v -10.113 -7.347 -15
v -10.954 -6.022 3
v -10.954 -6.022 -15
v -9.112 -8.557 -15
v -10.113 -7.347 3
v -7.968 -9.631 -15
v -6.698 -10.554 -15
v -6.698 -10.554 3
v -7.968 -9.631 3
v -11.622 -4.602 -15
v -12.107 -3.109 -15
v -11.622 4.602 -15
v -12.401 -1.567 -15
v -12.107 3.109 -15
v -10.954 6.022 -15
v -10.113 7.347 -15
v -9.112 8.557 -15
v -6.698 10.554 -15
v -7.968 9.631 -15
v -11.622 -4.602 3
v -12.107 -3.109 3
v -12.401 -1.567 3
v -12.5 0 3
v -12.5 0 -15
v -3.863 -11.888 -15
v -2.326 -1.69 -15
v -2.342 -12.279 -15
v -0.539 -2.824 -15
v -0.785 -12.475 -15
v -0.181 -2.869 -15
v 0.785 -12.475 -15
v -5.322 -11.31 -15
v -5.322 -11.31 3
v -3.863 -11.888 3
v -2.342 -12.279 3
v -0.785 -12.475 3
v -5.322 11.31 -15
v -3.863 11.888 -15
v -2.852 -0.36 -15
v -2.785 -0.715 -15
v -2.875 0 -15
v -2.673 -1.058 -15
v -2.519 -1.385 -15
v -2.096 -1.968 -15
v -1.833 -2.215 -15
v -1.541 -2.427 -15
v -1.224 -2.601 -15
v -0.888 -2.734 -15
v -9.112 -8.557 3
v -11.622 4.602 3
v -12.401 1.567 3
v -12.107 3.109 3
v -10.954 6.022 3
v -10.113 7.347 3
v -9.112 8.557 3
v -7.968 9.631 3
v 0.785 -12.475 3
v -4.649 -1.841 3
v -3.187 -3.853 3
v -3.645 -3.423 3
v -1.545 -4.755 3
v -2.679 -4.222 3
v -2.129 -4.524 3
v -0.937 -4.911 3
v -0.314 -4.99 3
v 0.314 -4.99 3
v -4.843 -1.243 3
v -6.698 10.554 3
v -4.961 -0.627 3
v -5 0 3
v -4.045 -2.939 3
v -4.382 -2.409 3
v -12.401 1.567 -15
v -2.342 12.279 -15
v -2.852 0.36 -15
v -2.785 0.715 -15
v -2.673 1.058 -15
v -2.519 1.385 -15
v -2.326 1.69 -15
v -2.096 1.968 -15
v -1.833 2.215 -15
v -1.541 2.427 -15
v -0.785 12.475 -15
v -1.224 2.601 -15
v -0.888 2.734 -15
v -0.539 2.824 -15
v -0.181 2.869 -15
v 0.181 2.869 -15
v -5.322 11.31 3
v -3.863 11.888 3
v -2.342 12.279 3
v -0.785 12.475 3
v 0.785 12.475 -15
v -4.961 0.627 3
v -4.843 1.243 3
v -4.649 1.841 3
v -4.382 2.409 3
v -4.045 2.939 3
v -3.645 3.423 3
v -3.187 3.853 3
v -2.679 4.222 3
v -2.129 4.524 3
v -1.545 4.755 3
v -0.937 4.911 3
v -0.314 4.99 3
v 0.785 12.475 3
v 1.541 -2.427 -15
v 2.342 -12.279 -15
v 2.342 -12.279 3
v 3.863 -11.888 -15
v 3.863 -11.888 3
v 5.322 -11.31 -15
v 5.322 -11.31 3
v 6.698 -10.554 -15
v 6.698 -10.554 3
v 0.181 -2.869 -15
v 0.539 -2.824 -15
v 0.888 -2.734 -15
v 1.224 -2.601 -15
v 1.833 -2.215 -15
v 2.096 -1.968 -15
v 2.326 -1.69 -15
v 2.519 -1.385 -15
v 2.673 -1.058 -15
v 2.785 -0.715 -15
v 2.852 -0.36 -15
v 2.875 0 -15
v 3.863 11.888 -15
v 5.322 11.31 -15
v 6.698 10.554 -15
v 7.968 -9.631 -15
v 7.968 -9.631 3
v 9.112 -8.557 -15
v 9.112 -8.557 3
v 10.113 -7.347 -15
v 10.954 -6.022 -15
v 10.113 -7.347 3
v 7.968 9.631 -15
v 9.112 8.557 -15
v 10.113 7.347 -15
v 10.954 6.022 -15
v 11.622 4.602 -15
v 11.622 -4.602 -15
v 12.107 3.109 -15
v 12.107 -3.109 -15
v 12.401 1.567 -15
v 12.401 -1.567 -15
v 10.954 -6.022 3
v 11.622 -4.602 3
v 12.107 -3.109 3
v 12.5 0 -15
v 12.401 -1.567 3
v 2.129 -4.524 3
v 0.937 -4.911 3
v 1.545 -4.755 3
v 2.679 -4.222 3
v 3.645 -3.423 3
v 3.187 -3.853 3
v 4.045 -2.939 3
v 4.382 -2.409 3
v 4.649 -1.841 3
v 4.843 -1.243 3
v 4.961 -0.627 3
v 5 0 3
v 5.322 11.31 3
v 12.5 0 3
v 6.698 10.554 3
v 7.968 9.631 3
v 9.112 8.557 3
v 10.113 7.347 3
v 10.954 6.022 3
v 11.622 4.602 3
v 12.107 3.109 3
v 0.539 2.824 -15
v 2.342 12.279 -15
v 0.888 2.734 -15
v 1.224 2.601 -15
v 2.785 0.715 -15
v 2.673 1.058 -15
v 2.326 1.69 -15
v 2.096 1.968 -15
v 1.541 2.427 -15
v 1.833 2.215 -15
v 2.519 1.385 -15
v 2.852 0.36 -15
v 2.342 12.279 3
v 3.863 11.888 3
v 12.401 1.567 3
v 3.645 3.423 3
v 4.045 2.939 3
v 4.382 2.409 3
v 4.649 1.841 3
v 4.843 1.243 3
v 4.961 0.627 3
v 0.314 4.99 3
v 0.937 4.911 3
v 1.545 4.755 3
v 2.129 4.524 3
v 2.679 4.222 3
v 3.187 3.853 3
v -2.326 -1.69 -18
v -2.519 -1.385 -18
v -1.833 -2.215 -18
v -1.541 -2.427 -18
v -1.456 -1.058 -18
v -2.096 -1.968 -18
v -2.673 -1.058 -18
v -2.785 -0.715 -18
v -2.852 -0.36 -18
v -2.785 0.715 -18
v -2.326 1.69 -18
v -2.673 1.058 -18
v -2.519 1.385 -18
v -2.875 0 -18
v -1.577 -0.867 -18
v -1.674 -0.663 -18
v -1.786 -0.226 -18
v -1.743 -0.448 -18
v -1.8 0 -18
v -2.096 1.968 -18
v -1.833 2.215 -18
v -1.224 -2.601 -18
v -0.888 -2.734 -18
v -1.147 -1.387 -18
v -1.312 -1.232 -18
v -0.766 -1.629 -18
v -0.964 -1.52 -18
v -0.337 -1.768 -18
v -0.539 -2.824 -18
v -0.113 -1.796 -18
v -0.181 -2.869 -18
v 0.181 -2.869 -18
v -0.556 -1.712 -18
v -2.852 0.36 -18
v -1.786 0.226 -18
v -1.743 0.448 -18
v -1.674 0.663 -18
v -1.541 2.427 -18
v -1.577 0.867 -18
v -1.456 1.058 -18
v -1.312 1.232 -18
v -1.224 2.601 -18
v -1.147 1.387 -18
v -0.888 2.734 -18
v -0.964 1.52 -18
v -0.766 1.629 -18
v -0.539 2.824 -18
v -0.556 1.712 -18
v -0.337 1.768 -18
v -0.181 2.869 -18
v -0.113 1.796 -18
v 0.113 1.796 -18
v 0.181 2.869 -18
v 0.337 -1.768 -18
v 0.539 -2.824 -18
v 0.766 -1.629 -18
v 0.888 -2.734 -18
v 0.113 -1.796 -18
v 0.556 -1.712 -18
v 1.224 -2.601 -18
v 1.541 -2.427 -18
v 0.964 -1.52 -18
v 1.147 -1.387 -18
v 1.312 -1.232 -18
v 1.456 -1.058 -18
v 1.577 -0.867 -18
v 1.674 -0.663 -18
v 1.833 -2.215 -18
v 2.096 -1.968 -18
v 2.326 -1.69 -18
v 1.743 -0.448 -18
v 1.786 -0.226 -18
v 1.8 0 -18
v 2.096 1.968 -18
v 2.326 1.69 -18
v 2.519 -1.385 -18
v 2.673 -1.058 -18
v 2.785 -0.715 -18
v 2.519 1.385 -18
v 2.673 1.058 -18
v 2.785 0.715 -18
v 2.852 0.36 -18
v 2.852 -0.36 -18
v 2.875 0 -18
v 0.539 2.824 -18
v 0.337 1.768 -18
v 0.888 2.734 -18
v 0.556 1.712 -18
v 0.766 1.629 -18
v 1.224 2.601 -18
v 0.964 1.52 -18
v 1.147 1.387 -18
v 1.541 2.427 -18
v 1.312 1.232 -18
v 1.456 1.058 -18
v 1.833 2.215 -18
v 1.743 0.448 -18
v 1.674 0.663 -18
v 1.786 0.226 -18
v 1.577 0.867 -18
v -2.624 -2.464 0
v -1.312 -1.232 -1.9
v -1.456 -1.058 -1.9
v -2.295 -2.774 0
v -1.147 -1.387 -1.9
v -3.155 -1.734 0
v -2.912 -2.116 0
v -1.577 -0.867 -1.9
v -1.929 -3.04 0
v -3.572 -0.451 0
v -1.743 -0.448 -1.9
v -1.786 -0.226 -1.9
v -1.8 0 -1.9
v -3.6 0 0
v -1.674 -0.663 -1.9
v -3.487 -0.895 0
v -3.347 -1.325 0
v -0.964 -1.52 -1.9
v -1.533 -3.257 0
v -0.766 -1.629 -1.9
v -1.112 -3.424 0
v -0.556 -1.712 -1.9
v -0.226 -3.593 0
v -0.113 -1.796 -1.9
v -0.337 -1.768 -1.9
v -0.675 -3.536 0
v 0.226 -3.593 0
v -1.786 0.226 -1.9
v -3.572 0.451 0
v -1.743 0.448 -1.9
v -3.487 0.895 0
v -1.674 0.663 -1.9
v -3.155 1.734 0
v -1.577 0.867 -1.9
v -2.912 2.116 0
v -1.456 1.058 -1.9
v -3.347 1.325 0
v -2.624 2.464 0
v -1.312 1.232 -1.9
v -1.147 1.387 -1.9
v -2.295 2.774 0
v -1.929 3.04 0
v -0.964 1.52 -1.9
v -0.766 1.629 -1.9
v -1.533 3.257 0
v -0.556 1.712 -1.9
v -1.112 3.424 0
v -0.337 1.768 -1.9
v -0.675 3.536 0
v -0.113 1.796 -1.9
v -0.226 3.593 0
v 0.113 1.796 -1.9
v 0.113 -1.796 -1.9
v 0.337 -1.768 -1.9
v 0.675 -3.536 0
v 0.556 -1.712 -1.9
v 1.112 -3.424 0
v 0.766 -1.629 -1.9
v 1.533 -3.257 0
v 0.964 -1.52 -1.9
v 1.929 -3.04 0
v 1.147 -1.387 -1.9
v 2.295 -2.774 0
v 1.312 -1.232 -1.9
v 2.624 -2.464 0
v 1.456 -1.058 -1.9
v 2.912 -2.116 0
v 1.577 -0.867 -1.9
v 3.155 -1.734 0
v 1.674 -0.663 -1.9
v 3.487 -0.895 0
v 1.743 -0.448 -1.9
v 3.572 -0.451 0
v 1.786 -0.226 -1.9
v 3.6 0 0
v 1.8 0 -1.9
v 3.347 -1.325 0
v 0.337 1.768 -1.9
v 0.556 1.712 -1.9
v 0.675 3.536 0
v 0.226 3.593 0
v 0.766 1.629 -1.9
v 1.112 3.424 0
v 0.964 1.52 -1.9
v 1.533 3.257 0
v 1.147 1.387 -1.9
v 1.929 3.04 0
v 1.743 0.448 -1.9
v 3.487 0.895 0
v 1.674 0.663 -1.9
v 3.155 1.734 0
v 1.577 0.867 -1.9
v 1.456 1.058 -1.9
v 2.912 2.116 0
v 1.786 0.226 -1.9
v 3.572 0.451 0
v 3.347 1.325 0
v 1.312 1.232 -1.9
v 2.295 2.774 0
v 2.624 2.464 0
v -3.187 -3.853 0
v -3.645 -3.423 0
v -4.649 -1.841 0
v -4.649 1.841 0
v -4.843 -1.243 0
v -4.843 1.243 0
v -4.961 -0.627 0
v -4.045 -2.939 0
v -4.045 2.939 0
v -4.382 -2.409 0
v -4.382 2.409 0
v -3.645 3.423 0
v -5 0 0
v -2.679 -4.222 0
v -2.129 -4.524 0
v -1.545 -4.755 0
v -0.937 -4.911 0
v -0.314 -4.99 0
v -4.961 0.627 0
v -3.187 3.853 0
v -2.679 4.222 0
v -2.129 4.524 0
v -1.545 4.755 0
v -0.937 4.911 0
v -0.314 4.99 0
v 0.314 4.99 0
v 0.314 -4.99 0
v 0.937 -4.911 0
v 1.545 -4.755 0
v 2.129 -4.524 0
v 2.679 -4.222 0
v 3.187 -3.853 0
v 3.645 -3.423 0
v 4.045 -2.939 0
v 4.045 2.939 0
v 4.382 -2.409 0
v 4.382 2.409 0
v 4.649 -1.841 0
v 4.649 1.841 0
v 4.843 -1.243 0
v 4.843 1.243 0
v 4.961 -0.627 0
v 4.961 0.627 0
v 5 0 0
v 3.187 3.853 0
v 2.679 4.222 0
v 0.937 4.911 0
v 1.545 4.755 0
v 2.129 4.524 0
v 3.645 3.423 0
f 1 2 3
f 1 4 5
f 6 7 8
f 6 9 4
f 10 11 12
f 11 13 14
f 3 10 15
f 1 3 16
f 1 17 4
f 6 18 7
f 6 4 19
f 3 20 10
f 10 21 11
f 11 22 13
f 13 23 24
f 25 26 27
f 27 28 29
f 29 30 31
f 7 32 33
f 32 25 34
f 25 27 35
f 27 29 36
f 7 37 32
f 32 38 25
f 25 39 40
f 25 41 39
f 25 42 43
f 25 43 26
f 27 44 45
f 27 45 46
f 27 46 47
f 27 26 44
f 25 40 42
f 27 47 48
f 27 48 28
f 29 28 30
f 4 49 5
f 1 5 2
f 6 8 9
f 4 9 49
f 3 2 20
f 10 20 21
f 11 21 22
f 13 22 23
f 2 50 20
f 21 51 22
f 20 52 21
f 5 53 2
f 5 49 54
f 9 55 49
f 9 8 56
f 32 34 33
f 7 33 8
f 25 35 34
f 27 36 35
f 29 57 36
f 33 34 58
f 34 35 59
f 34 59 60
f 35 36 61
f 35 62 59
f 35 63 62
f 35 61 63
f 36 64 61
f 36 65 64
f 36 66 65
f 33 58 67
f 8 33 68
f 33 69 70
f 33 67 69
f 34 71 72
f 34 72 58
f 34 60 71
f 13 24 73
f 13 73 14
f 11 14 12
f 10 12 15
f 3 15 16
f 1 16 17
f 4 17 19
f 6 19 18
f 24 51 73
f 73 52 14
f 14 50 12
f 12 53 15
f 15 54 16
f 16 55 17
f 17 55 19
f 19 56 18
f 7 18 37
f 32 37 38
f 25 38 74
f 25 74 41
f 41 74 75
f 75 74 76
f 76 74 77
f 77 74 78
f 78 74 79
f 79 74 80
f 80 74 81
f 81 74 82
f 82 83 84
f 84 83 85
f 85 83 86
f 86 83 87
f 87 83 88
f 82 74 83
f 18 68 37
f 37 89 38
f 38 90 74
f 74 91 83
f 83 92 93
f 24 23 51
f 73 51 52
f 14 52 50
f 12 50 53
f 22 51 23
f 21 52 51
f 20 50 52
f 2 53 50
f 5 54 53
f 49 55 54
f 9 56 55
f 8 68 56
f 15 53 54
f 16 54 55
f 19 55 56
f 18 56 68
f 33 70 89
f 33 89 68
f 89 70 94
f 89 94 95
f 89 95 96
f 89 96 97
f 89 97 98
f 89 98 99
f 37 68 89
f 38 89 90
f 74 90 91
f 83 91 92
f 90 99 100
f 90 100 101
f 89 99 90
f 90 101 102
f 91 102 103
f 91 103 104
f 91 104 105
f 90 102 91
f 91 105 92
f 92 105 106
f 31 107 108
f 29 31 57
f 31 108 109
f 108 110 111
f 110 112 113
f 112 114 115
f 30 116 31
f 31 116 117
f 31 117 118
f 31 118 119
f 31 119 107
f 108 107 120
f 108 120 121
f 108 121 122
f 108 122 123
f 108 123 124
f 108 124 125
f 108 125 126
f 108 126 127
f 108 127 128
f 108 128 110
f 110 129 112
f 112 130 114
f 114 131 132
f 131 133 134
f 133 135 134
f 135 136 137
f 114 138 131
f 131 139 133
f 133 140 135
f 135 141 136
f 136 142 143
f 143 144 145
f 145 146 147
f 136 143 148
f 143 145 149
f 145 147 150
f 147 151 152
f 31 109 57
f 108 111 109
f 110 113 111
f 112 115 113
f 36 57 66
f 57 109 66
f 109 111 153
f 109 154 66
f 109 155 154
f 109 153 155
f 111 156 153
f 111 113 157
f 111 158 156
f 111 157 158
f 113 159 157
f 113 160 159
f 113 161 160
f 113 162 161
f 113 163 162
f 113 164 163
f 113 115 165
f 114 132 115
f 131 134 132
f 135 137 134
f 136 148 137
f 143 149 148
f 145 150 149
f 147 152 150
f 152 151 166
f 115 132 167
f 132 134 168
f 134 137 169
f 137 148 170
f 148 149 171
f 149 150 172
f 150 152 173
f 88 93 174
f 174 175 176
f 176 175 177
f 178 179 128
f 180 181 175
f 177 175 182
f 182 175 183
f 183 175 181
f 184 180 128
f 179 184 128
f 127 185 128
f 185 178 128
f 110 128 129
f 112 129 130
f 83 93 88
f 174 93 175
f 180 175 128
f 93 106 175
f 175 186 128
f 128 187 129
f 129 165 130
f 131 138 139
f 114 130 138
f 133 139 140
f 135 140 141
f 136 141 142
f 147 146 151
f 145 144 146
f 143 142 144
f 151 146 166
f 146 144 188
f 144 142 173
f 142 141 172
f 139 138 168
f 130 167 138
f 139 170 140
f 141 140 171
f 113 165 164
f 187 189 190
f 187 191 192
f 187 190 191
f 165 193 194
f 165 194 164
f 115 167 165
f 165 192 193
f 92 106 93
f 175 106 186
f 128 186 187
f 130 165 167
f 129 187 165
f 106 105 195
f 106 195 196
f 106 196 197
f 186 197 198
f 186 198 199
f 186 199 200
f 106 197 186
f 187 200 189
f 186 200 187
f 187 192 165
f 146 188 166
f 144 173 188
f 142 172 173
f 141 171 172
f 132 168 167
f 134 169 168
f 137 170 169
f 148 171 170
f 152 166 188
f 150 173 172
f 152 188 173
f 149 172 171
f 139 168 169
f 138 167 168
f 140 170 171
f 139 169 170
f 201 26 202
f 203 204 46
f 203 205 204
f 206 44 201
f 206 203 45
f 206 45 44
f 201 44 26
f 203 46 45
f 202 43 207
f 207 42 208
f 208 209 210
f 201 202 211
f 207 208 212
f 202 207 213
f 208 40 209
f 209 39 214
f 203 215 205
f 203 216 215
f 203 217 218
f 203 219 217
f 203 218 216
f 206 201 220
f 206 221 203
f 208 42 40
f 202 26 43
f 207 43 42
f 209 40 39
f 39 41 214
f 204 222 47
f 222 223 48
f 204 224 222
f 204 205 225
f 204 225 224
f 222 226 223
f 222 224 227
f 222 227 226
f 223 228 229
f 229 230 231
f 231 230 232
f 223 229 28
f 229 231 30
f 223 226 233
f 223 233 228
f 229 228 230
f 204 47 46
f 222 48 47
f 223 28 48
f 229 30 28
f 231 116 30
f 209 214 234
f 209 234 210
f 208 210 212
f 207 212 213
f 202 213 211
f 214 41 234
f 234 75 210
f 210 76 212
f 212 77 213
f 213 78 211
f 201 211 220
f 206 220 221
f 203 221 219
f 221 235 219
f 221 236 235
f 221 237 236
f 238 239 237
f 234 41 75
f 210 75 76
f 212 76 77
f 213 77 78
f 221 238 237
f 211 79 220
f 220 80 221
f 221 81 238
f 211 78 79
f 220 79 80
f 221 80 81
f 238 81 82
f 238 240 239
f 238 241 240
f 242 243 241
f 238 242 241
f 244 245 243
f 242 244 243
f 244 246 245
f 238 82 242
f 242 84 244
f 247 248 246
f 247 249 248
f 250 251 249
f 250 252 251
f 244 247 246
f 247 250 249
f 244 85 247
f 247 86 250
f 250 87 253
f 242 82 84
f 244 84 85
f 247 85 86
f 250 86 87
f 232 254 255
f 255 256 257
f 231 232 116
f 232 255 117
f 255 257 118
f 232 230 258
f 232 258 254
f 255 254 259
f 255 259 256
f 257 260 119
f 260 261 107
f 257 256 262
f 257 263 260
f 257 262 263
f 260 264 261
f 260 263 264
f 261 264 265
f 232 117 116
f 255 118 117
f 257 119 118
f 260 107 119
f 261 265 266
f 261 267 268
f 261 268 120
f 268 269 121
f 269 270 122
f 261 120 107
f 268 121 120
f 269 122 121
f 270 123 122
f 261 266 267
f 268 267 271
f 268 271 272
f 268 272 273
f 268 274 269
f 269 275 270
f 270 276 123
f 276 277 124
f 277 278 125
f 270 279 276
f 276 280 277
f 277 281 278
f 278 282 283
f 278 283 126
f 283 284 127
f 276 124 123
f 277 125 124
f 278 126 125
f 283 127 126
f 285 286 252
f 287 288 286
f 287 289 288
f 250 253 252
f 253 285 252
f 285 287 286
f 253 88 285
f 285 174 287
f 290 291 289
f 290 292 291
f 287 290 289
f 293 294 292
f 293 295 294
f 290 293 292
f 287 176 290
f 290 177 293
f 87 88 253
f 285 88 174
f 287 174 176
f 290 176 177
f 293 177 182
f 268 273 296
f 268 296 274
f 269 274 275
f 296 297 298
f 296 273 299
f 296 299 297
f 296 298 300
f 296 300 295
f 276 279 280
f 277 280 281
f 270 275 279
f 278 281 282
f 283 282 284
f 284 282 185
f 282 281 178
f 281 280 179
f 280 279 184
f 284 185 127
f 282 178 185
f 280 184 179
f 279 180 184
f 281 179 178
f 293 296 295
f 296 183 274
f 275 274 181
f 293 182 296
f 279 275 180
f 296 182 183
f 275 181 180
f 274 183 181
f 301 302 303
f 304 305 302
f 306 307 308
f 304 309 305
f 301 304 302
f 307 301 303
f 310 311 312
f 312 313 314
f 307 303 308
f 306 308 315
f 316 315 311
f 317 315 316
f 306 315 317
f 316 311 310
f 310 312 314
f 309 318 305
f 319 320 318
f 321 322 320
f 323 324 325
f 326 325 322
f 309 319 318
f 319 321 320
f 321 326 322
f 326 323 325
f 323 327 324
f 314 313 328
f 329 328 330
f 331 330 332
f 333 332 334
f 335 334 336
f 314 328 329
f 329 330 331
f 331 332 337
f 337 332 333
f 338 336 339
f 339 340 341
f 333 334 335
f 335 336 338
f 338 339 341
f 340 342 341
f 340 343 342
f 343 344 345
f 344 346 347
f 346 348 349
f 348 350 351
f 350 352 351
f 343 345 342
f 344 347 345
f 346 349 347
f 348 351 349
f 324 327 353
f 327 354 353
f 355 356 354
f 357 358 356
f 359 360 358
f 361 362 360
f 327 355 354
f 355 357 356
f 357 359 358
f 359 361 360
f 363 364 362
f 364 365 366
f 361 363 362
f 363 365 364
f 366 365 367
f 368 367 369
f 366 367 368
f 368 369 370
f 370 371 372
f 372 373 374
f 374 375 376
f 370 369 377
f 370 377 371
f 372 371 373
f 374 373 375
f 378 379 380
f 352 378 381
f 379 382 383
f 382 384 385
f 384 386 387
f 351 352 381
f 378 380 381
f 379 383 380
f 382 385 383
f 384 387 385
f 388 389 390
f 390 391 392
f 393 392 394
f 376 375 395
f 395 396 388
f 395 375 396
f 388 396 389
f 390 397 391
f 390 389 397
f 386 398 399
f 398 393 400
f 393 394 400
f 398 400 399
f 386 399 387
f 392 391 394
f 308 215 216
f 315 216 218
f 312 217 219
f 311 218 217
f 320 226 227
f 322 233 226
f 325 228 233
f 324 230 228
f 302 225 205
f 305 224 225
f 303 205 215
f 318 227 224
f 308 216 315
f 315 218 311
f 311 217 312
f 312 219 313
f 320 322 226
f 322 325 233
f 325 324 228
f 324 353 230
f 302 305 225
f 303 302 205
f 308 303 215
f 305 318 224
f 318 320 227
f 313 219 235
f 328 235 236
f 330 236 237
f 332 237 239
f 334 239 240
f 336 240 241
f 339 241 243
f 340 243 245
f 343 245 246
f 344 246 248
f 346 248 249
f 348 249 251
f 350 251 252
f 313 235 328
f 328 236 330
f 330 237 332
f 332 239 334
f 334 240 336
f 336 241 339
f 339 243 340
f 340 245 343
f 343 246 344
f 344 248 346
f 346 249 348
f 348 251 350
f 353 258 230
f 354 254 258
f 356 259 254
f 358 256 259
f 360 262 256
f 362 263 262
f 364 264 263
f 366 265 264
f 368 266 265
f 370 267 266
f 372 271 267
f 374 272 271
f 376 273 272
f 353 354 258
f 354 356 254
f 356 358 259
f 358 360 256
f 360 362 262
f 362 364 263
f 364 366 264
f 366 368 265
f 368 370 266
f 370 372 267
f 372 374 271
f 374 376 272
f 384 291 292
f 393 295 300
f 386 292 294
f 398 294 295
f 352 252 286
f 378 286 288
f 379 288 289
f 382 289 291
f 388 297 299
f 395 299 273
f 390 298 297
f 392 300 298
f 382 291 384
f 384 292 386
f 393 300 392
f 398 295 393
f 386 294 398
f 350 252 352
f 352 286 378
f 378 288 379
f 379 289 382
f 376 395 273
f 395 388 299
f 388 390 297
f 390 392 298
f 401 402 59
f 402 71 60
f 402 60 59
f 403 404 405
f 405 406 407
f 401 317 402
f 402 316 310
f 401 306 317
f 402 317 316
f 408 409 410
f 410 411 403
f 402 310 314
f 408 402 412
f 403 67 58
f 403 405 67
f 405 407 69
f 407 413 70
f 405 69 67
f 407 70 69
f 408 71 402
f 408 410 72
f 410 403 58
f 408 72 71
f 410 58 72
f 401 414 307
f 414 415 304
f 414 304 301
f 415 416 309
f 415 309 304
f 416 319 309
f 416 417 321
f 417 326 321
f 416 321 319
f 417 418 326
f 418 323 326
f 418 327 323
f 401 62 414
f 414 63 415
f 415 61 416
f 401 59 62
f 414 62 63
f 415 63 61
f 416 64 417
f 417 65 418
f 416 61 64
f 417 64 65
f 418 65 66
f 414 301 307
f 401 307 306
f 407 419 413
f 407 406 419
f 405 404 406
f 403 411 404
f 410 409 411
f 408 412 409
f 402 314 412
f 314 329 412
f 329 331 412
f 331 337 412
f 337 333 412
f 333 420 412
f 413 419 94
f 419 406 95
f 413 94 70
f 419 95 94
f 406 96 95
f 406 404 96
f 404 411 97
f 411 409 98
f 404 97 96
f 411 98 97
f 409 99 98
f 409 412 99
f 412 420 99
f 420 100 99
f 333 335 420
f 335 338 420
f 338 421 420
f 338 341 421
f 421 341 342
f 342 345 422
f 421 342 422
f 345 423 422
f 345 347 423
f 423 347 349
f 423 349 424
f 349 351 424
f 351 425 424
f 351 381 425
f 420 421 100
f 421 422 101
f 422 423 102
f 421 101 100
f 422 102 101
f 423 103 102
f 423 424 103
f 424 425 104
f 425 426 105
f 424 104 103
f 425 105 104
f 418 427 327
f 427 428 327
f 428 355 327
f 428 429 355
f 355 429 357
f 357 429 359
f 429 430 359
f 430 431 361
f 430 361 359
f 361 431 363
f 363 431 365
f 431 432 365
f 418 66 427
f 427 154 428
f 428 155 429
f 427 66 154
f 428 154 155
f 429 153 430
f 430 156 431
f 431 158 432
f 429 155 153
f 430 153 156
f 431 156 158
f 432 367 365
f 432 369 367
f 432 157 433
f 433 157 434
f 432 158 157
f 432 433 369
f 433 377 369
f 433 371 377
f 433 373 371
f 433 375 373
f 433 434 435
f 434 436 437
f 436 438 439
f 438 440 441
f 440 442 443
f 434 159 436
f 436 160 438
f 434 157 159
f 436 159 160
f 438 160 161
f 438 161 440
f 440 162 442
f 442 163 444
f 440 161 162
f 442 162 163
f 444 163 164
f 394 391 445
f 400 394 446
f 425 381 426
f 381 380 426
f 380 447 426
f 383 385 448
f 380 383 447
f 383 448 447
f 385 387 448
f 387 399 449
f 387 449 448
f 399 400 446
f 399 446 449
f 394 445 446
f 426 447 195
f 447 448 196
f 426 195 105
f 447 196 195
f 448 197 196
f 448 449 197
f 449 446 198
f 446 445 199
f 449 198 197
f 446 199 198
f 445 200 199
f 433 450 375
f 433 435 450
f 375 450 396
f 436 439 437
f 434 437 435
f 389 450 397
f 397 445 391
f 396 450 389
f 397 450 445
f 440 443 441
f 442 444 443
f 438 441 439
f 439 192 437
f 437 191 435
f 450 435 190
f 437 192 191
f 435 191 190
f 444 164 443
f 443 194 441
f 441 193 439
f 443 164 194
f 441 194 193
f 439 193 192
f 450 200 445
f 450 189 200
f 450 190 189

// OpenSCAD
$fn = 50;

difference() {
	union() {
		translate(v = [0, 0, -15.0]) {
			cylinder(h = 18, r = 12.5);
		}
		#translate(v = [0, 0, -18.0]) {
			cylinder(h = 18, r = 2.875);
		}
	}
	union() {
		translate(v = [0, 0, 0]) {
			rotate(a = [0, 0, 0]) {
				difference() {
					union() {
						translate(v = [0, 0, -18.0]) {
							cylinder(h = 18, r = 1.5);
						}
						translate(v = [0, 0, -1.9]) {
							cylinder(h = 1.9, r1 = 1.8, r2 = 3.6);
						}
						translate(v = [0, 0, -18.0]) {
							cylinder(h = 18, r = 1.8);
						}
						translate(v = [0, 0, -18.0]) {
							cylinder(h = 18, r = 1.5);
						}
					}
					union();
				}
			}
		}
		#cylinder(h = 3, r = 5.0);
	}
}
